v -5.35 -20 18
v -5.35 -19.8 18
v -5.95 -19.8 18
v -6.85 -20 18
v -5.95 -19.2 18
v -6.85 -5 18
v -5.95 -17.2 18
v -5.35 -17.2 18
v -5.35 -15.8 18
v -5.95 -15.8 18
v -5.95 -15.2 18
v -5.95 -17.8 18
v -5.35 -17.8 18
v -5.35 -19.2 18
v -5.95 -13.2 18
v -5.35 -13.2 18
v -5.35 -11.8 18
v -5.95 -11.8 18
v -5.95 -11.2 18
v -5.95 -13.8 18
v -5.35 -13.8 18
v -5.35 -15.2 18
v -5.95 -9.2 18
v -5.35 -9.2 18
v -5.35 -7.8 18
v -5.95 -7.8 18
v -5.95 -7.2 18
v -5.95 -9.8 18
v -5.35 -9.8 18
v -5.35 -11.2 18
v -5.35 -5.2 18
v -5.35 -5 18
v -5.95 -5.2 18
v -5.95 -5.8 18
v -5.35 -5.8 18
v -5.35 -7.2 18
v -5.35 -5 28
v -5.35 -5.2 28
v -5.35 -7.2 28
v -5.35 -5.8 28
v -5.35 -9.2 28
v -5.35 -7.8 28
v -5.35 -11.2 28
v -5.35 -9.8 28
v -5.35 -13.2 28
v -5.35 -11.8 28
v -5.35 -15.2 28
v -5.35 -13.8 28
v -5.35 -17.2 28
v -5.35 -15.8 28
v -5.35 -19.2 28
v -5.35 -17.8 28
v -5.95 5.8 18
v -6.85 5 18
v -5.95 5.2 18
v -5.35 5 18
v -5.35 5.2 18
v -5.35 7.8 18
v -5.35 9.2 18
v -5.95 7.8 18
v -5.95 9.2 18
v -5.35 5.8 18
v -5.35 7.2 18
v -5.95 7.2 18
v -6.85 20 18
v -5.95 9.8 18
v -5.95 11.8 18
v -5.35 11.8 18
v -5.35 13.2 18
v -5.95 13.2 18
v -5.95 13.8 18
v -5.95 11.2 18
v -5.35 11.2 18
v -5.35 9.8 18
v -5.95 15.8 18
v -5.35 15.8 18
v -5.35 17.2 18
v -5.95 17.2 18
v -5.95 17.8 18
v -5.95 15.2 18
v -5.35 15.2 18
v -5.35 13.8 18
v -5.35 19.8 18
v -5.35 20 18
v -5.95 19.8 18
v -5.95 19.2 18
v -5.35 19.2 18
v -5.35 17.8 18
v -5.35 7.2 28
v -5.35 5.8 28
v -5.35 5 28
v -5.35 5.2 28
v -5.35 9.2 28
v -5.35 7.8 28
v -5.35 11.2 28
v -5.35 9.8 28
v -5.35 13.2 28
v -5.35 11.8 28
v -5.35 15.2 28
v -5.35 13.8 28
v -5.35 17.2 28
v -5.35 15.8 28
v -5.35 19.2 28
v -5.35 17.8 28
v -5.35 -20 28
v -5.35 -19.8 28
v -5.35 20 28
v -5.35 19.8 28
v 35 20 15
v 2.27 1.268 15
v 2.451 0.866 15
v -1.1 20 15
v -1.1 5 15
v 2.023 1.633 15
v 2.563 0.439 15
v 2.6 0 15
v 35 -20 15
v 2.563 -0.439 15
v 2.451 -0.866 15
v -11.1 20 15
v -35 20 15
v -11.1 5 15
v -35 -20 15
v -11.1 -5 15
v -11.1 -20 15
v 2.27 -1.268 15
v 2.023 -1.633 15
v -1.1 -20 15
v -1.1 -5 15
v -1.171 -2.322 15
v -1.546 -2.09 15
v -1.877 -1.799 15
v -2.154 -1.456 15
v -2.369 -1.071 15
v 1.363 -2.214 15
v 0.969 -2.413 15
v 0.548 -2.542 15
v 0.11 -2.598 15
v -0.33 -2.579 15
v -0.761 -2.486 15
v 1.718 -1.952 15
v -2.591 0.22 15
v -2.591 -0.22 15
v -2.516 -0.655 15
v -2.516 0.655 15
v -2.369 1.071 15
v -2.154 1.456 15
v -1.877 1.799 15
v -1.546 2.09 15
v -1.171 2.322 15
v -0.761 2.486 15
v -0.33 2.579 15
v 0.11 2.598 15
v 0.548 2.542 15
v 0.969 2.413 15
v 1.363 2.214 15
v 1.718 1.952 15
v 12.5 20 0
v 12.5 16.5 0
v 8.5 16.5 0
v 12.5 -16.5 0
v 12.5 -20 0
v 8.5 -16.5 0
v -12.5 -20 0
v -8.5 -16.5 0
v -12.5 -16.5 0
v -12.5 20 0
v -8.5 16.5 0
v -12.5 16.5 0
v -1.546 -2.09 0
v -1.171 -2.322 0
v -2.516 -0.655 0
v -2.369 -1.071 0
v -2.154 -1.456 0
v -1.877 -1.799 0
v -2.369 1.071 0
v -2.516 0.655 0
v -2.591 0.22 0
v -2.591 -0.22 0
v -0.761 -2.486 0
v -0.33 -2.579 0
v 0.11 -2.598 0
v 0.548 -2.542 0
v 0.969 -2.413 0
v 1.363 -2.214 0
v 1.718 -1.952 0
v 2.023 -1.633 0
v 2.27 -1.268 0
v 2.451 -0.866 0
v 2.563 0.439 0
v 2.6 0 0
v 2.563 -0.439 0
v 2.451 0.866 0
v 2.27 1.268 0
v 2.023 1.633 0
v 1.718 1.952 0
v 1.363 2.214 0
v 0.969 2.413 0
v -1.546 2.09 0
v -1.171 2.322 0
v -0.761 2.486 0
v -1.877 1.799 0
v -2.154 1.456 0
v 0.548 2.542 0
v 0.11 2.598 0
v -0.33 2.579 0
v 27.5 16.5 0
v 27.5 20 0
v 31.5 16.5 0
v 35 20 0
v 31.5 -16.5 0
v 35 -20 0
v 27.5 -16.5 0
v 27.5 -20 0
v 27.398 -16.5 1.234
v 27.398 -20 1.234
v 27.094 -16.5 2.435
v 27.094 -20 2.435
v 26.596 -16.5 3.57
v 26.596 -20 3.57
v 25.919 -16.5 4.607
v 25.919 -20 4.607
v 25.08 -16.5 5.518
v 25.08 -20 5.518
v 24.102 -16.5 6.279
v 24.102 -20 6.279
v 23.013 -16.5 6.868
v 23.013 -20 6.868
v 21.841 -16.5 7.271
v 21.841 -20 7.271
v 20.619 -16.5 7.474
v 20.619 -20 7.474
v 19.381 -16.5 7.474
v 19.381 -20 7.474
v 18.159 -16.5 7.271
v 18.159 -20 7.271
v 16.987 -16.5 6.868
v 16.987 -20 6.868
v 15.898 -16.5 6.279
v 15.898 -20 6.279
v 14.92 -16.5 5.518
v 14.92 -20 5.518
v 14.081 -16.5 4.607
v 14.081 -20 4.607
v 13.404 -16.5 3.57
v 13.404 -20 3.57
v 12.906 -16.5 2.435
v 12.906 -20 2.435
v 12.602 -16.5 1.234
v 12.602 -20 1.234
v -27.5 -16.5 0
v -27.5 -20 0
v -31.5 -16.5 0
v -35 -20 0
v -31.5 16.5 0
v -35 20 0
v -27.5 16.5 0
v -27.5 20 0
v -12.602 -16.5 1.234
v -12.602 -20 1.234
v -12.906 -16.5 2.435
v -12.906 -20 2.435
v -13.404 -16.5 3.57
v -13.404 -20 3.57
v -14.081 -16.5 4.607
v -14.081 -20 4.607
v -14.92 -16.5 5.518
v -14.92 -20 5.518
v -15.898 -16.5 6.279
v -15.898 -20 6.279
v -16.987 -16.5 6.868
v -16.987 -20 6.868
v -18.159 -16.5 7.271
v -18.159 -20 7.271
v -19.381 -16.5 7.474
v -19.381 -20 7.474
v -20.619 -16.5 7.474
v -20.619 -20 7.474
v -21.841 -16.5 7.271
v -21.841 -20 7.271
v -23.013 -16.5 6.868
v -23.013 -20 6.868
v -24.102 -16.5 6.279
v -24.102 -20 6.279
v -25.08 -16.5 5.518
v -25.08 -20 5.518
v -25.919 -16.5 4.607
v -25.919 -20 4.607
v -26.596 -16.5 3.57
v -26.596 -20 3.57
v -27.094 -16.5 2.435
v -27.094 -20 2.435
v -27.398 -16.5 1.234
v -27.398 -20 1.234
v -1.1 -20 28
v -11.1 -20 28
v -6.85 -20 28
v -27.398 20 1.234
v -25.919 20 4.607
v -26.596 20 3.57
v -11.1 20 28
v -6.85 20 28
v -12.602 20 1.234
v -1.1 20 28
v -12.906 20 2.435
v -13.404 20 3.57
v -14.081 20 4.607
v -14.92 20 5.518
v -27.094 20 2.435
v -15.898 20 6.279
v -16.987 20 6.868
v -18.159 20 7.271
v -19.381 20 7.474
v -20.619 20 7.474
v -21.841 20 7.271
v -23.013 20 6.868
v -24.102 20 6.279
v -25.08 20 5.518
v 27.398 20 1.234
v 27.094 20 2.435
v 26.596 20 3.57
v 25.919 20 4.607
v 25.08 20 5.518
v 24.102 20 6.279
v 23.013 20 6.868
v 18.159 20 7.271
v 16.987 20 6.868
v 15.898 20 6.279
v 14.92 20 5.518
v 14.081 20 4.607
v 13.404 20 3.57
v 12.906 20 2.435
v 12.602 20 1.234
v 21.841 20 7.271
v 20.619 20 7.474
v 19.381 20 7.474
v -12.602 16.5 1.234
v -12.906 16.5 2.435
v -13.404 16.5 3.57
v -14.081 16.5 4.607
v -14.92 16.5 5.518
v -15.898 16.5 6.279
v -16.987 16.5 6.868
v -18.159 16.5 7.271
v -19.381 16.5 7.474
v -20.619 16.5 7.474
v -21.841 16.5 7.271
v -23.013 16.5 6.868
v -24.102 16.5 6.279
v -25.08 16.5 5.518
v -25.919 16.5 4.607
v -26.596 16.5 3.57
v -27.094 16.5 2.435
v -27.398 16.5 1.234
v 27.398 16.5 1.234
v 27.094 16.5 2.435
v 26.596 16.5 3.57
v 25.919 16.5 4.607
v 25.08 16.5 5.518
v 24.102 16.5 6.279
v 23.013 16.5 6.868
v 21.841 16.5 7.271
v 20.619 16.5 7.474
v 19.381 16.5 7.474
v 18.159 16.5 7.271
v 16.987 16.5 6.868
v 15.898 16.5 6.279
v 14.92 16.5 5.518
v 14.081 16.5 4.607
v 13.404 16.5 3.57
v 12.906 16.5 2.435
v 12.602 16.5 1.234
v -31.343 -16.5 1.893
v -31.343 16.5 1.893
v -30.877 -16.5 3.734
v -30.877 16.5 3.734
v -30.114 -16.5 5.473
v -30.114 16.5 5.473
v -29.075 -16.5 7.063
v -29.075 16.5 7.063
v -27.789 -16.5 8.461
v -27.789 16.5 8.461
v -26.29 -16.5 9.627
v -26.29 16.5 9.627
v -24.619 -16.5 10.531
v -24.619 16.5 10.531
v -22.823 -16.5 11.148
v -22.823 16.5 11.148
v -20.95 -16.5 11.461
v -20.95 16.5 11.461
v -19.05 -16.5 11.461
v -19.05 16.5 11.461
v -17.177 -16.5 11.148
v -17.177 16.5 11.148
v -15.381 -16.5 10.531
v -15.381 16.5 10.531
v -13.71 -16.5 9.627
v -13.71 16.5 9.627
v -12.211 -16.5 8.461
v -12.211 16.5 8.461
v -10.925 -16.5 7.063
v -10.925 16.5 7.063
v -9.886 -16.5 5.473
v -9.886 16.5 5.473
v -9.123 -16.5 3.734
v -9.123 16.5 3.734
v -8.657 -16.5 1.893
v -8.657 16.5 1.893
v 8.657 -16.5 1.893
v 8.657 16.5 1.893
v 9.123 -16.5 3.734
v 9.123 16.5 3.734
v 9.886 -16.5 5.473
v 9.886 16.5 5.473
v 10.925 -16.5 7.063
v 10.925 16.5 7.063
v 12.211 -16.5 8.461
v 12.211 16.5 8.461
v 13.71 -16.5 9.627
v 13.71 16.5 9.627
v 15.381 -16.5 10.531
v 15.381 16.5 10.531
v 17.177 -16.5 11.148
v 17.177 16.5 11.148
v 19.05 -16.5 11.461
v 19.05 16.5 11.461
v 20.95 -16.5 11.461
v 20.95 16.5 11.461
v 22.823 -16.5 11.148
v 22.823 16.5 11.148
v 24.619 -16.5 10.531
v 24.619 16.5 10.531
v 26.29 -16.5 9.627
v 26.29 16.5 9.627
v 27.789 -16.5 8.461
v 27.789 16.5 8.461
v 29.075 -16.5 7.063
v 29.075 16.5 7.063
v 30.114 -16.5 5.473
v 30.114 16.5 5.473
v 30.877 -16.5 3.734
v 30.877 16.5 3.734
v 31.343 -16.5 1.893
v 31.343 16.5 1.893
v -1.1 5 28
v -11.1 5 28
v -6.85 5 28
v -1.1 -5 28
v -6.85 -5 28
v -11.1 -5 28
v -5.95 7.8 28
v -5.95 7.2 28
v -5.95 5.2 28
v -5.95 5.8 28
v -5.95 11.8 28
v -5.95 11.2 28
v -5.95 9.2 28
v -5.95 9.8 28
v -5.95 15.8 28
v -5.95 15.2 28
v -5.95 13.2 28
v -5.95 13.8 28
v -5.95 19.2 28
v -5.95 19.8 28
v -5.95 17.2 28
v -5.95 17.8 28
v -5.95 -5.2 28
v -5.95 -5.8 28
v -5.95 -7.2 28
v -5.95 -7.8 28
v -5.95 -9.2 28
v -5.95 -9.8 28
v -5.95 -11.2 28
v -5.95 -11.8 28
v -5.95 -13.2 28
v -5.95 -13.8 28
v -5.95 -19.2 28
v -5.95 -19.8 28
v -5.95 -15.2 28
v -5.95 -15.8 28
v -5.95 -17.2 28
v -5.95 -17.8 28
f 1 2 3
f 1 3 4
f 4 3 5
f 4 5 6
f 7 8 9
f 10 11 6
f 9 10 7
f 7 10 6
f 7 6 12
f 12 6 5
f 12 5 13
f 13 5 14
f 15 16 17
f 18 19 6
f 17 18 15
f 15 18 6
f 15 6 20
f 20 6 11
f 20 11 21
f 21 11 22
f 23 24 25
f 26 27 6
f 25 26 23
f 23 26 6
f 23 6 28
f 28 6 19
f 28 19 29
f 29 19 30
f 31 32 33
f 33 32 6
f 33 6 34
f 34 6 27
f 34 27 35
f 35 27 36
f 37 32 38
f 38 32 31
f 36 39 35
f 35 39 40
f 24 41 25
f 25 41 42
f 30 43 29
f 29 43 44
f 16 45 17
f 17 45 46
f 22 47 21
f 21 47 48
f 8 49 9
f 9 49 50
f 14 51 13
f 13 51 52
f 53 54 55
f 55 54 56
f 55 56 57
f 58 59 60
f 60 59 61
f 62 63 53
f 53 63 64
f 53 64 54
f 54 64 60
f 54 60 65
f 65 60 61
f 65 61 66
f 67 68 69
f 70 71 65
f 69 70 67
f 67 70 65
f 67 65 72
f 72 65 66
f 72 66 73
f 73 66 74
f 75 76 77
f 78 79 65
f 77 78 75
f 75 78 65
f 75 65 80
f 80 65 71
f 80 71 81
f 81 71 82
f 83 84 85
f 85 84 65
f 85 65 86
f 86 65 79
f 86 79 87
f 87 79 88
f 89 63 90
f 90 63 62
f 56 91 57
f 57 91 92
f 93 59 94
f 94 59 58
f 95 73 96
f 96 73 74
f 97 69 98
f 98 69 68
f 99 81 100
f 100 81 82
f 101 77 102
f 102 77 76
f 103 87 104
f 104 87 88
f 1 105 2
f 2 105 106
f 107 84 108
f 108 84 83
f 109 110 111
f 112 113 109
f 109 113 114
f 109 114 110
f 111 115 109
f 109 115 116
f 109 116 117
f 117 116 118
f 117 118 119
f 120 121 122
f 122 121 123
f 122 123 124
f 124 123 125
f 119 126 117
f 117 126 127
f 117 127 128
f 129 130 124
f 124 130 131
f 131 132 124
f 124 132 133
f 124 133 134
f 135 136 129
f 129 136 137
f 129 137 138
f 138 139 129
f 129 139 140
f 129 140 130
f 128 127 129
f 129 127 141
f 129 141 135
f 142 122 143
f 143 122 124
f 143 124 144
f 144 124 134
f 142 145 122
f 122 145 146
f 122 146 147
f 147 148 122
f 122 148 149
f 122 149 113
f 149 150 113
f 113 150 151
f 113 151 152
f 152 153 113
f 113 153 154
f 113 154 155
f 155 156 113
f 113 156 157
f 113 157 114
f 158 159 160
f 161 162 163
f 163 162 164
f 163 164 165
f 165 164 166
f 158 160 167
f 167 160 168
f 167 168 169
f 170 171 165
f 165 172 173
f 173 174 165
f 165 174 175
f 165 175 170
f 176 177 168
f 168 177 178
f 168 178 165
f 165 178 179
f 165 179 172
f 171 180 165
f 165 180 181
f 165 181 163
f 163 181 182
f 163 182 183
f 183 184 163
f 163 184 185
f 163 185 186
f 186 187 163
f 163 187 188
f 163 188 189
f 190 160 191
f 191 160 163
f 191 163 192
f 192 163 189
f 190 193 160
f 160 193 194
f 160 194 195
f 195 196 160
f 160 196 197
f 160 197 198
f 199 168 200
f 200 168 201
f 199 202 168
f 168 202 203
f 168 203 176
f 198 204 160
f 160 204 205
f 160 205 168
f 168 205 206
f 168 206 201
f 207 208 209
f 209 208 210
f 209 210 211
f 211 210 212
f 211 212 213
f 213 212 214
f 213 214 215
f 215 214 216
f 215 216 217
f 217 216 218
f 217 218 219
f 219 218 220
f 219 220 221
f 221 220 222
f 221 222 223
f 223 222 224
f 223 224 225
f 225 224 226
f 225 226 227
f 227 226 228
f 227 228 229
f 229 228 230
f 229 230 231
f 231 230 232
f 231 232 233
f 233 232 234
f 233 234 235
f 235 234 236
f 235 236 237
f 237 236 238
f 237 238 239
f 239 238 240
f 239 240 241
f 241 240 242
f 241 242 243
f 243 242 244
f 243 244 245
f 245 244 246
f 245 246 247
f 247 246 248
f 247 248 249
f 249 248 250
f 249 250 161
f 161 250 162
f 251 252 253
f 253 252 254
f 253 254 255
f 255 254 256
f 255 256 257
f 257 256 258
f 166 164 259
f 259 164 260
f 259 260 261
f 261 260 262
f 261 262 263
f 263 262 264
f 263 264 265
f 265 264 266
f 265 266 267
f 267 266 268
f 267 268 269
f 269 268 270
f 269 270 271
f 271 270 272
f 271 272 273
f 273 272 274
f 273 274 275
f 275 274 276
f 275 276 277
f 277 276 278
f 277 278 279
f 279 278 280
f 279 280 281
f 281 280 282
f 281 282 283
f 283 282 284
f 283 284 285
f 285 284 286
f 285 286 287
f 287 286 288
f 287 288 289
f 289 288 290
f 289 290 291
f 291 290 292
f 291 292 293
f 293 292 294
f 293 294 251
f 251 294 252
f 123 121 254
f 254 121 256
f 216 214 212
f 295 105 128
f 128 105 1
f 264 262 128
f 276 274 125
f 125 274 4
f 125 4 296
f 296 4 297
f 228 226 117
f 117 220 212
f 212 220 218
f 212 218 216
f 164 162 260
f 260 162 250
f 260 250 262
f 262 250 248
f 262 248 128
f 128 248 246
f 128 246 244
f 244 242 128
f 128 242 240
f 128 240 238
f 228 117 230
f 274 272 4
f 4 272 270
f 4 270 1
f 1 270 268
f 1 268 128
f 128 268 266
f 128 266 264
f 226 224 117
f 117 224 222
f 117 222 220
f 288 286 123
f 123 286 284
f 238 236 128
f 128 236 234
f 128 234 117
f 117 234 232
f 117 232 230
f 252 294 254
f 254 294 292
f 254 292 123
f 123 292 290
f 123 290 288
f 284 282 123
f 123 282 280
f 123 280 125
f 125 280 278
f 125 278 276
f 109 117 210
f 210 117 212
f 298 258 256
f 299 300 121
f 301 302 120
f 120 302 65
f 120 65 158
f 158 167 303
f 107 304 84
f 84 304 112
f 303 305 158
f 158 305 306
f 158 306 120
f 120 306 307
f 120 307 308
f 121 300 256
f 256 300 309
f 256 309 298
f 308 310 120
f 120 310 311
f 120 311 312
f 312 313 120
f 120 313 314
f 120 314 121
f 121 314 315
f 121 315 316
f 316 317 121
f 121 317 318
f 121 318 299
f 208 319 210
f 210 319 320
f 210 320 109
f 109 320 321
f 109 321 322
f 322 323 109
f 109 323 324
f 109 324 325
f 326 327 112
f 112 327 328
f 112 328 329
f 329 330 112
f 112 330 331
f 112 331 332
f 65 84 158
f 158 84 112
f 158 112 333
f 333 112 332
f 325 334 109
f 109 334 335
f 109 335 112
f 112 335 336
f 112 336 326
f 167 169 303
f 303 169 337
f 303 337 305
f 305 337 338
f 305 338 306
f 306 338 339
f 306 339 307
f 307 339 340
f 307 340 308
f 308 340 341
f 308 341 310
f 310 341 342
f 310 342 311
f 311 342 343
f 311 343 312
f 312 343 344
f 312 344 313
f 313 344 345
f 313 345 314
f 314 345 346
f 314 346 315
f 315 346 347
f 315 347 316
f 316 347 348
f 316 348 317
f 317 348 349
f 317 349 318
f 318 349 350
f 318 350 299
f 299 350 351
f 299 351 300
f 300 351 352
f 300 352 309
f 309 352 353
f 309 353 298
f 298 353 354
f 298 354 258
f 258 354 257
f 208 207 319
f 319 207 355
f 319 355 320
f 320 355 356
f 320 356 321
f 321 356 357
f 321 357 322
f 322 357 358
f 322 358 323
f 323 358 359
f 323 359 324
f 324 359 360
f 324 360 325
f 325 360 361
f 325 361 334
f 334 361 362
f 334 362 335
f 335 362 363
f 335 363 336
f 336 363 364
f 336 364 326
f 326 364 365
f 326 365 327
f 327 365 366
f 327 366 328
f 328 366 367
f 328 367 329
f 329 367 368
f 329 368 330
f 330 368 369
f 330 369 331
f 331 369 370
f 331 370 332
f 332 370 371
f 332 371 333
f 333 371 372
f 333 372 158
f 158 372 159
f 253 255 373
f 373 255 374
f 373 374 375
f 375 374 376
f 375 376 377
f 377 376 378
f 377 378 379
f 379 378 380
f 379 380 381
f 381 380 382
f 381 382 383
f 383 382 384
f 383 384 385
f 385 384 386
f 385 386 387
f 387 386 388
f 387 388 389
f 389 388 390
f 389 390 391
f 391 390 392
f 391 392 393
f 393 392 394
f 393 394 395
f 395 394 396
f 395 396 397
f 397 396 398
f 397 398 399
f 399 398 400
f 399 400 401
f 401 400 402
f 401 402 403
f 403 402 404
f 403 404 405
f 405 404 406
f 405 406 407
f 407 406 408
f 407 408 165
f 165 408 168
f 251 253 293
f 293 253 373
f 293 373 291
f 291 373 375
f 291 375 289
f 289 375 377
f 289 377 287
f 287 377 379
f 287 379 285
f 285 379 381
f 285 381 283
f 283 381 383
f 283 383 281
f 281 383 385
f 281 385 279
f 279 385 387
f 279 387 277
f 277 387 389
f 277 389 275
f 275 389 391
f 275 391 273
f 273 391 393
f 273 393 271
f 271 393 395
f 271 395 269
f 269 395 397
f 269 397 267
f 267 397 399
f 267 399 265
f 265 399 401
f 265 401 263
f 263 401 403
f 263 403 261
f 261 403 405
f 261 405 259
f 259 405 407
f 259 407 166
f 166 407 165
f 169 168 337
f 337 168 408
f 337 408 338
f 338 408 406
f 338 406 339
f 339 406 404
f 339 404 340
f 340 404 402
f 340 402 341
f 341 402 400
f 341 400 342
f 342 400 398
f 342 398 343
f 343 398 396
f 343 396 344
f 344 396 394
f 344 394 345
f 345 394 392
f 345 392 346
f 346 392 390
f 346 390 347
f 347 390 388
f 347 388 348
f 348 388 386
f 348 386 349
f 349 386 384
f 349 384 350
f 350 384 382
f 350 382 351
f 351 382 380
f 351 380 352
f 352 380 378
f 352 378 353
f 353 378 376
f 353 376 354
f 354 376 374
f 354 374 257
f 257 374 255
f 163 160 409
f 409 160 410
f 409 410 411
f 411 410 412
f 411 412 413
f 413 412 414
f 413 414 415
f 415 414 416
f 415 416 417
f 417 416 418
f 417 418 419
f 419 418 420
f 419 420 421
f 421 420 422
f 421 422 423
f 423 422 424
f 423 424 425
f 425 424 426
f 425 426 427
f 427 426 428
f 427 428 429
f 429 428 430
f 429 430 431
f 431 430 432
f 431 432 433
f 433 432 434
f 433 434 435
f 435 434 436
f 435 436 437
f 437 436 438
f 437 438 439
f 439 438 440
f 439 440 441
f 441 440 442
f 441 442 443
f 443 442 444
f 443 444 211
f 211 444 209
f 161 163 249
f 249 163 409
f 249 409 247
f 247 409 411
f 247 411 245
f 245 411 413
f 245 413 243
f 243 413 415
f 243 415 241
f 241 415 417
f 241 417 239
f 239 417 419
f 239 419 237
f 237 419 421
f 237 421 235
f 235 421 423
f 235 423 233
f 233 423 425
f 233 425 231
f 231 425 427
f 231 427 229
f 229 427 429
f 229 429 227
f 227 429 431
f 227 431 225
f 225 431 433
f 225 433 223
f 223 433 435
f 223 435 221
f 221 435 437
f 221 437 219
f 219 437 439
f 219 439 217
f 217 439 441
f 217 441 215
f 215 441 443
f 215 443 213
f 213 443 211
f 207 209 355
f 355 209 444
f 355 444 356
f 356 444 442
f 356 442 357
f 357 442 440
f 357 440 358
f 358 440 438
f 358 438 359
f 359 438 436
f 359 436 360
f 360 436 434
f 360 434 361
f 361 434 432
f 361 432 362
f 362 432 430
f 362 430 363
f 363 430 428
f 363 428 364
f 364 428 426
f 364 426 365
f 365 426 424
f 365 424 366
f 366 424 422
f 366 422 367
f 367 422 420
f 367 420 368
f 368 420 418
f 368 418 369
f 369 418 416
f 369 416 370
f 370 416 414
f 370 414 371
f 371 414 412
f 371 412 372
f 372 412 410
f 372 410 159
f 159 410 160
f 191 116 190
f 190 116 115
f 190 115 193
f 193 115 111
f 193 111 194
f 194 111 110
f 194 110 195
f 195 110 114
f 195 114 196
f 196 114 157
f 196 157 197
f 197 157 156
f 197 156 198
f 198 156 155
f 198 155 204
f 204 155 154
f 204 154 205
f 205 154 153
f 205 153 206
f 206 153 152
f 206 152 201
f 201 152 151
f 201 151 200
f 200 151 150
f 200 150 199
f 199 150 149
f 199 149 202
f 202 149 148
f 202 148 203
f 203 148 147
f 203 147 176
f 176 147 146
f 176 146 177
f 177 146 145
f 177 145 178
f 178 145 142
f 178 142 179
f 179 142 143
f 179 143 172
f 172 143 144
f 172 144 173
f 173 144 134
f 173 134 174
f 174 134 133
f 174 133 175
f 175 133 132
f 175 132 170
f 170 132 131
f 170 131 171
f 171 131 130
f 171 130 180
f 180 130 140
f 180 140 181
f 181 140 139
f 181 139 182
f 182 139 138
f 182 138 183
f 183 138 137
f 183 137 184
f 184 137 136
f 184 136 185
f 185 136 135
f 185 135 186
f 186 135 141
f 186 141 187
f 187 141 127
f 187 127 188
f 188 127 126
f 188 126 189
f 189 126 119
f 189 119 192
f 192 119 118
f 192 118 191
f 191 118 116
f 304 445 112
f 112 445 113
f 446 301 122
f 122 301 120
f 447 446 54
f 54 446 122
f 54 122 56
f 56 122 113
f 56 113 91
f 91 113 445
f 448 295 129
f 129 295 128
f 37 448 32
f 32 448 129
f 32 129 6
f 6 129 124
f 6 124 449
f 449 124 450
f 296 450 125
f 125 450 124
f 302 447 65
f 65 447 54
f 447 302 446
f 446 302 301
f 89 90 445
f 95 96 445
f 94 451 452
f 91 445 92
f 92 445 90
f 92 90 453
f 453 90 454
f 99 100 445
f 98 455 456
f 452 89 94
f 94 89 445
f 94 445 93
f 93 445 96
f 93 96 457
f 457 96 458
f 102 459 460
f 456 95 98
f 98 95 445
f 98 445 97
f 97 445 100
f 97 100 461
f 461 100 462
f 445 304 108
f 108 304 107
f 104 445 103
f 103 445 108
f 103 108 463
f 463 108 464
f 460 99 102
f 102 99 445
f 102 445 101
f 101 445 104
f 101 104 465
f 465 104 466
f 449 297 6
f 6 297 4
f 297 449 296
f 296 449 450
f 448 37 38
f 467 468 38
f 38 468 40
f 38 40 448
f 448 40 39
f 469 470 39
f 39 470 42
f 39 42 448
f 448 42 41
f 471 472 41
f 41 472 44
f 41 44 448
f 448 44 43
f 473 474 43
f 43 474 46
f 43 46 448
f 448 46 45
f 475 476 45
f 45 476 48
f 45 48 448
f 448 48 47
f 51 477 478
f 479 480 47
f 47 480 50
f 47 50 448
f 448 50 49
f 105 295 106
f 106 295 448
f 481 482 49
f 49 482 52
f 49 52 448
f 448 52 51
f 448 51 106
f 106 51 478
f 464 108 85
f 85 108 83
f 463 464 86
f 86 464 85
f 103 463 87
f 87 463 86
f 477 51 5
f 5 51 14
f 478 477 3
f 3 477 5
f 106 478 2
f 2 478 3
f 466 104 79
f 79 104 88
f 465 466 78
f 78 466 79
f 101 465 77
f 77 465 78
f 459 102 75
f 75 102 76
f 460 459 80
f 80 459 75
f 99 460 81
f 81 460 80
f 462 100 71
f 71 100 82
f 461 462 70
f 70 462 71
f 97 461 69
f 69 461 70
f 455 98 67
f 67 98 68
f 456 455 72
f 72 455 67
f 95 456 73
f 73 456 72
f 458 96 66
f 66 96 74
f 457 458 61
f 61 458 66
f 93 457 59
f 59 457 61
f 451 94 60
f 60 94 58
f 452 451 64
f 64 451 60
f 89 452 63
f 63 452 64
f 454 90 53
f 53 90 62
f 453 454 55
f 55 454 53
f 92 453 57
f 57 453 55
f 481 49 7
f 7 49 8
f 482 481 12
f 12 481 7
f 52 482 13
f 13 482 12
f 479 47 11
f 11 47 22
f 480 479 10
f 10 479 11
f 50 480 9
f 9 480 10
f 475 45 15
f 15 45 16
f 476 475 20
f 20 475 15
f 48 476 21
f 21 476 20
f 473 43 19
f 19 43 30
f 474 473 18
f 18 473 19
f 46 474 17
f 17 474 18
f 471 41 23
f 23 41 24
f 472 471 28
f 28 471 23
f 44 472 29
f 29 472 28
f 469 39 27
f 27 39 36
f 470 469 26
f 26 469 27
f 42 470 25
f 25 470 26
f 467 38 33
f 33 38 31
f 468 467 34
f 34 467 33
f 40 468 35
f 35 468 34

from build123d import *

# Parameters (mm, degrees)
SKETCH1_W           = 70
SKETCH1_H           = 40
BOSS_EXTRUDE1_DEPTH = 15
SKETCH2_R           = 7.5
CUT_EXTRUDE1_DEPTH  = 56.226805086
SKETCH3_R           = 11.5
CUT_EXTRUDE2_DEPTH  = 16.5
SKETCH4_R           = 2.6
CUT_EXTRUDE3_DEPTH  = 44.011626335
SKETCH5_W           = 10
SKETCH5_H           = 15
BOSS_EXTRUDE2_DEPTH = 3
SKETCH8_W           = 4.25
SKETCH8_H           = 15
BOSS_EXTRUDE5_DEPTH = 10
SKETCH9_W           = 0.6
SKETCH9_H           = 0.6
BOSS_EXTRUDE6_DEPTH = 10


with BuildPart() as part:
    # Sketch1 → Boss-Extrude1 (new body)
    with BuildSketch(Plane.XY):
        Rectangle(SKETCH1_W, SKETCH1_H)
    extrude(amount=BOSS_EXTRUDE1_DEPTH)

    # Sketch2 → Cut-Extrude1 (cut, through all)
    with BuildSketch(Plane.XZ.offset(20)):
        with Locations((-20, 0)):
            Circle(SKETCH2_R)
        with Locations((20, 0)):
            Circle(SKETCH2_R)
    extrude(amount=-CUT_EXTRUDE1_DEPTH, mode=Mode.SUBTRACT)

    # Sketch3 → Cut-Extrude2 (cut, symmetric)
    with BuildSketch(Plane(origin=(0, 0, 0), x_dir=(1, 0, 0), z_dir=(0, 1, 0))):
        with Locations((-20, 0)):
            Circle(SKETCH3_R)
        with Locations((20, 0)):
            Circle(SKETCH3_R)
    extrude(amount=CUT_EXTRUDE2_DEPTH, both=True, mode=Mode.SUBTRACT)

    # Sketch4 → Cut-Extrude3 (cut, through all)
    with BuildSketch(Plane.XY.offset(15)):
        Circle(SKETCH4_R)
    extrude(amount=-CUT_EXTRUDE3_DEPTH, mode=Mode.SUBTRACT)

    # Sketch5 → Boss-Extrude2 (add)
    with BuildSketch(Plane.XY.offset(15)):
        with Locations((-6.1, 12.5)):
            Rectangle(SKETCH5_W, SKETCH5_H)
        with Locations((-6.1, -12.5)):
            Rectangle(SKETCH5_W, SKETCH5_H)
    extrude(amount=BOSS_EXTRUDE2_DEPTH)

    # Sketch8 → Boss-Extrude5 (add)
    with BuildSketch(Plane.XY.offset(18)):
        with Locations((-8.975, 12.5)):
            Rectangle(SKETCH8_W, SKETCH8_H)
        with Locations((-3.225, 12.5)):
            Rectangle(SKETCH8_W, SKETCH8_H)
        with Locations((-8.975, -12.5)):
            Rectangle(SKETCH8_W, SKETCH8_H)
        with Locations((-3.225, -12.5)):
            Rectangle(SKETCH8_W, SKETCH8_H)
    extrude(amount=BOSS_EXTRUDE5_DEPTH)

    # Sketch9 → Boss-Extrude6 (add)
    with BuildSketch(Plane.XY.offset(18)):
        with Locations((-5.65, 19.5)):
            Rectangle(SKETCH9_W, SKETCH9_H)
        with Locations((-5.65, 17.5)):
            Rectangle(SKETCH9_W, SKETCH9_H)
        with Locations((-5.65, 15.5)):
            Rectangle(SKETCH9_W, SKETCH9_H)
        with Locations((-5.65, 13.5)):
            Rectangle(SKETCH9_W, SKETCH9_H)
        with Locations((-5.65, 11.5)):
            Rectangle(SKETCH9_W, SKETCH9_H)
        with Locations((-5.65, 9.5)):
            Rectangle(SKETCH9_W, SKETCH9_H)
        with Locations((-5.65, 7.5)):
            Rectangle(SKETCH9_W, SKETCH9_H)
        with Locations((-5.65, 5.5)):
            Rectangle(SKETCH9_W, SKETCH9_H)
        with Locations((-5.65, -19.5)):
            Rectangle(SKETCH9_W, SKETCH9_H)
        with Locations((-5.65, -17.5)):
            Rectangle(SKETCH9_W, SKETCH9_H)
        with Locations((-5.65, -15.5)):
            Rectangle(SKETCH9_W, SKETCH9_H)
        with Locations((-5.65, -13.5)):
            Rectangle(SKETCH9_W, SKETCH9_H)
        with Locations((-5.65, -11.5)):
            Rectangle(SKETCH9_W, SKETCH9_H)
        with Locations((-5.65, -9.5)):
            Rectangle(SKETCH9_W, SKETCH9_H)
        with Locations((-5.65, -7.5)):
            Rectangle(SKETCH9_W, SKETCH9_H)
        with Locations((-5.65, -5.5)):
            Rectangle(SKETCH9_W, SKETCH9_H)
    extrude(amount=BOSS_EXTRUDE6_DEPTH)


solid = part.part
